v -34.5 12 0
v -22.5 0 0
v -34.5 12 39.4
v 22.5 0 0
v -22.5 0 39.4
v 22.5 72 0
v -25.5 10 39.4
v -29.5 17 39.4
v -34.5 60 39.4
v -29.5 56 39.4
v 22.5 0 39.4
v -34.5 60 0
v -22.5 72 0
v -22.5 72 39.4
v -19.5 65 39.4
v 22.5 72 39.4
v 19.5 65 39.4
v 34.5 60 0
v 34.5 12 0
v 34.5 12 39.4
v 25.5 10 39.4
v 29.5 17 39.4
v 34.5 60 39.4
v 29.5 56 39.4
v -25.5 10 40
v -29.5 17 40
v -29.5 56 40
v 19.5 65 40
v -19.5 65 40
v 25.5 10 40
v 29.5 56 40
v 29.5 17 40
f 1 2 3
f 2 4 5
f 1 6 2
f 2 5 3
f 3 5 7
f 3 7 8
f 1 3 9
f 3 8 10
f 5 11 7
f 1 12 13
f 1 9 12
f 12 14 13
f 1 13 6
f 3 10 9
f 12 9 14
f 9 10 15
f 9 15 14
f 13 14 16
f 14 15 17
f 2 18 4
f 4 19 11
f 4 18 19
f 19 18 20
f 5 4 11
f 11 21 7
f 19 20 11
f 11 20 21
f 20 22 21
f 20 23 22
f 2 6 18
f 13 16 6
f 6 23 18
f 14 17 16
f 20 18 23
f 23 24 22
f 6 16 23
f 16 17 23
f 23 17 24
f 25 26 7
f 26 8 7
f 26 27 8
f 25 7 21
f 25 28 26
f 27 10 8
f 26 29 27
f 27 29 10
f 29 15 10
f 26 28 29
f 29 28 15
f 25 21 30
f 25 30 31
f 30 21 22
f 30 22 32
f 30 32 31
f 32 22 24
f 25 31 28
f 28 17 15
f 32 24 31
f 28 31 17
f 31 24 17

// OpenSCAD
// Stanley 1-30-696 tape measure, 5 m
// Retracted Stanley Tylon 1-30-696, modelled with a 69 × 72 × 40 mm case from a distributor listing. The outline and coloured face follow the manufacturer photograph. The lock, hook and belt clip are simplified or omitted; dimensions and physical fit require confirmation on the actual tool.
// Units: mm
$fn = 64;
union() {
    // Yellow case
    color([0.9765, 0.749, 0.0471])
    translate([0, 0, 0]) rotate([0, 0, 0])
        linear_extrude(height=39.4) polygon(points=[[-22.5, 0], [22.5, 0], [34.5, 12], [34.5, 60], [22.5, 72], [-22.5, 72], [-34.5, 60], [-34.5, 12]]);
    // Dark front panel
    color([0.1843, 0.1804, 0.1961])
    translate([0, 0, 39.4]) rotate([0, 0, 0])
        linear_extrude(height=0.6) polygon(points=[[-25.5, 10], [25.5, 10], [29.5, 17], [29.5, 56], [19.5, 65], [-19.5, 65], [-29.5, 56], [-29.5, 17]]);
}
